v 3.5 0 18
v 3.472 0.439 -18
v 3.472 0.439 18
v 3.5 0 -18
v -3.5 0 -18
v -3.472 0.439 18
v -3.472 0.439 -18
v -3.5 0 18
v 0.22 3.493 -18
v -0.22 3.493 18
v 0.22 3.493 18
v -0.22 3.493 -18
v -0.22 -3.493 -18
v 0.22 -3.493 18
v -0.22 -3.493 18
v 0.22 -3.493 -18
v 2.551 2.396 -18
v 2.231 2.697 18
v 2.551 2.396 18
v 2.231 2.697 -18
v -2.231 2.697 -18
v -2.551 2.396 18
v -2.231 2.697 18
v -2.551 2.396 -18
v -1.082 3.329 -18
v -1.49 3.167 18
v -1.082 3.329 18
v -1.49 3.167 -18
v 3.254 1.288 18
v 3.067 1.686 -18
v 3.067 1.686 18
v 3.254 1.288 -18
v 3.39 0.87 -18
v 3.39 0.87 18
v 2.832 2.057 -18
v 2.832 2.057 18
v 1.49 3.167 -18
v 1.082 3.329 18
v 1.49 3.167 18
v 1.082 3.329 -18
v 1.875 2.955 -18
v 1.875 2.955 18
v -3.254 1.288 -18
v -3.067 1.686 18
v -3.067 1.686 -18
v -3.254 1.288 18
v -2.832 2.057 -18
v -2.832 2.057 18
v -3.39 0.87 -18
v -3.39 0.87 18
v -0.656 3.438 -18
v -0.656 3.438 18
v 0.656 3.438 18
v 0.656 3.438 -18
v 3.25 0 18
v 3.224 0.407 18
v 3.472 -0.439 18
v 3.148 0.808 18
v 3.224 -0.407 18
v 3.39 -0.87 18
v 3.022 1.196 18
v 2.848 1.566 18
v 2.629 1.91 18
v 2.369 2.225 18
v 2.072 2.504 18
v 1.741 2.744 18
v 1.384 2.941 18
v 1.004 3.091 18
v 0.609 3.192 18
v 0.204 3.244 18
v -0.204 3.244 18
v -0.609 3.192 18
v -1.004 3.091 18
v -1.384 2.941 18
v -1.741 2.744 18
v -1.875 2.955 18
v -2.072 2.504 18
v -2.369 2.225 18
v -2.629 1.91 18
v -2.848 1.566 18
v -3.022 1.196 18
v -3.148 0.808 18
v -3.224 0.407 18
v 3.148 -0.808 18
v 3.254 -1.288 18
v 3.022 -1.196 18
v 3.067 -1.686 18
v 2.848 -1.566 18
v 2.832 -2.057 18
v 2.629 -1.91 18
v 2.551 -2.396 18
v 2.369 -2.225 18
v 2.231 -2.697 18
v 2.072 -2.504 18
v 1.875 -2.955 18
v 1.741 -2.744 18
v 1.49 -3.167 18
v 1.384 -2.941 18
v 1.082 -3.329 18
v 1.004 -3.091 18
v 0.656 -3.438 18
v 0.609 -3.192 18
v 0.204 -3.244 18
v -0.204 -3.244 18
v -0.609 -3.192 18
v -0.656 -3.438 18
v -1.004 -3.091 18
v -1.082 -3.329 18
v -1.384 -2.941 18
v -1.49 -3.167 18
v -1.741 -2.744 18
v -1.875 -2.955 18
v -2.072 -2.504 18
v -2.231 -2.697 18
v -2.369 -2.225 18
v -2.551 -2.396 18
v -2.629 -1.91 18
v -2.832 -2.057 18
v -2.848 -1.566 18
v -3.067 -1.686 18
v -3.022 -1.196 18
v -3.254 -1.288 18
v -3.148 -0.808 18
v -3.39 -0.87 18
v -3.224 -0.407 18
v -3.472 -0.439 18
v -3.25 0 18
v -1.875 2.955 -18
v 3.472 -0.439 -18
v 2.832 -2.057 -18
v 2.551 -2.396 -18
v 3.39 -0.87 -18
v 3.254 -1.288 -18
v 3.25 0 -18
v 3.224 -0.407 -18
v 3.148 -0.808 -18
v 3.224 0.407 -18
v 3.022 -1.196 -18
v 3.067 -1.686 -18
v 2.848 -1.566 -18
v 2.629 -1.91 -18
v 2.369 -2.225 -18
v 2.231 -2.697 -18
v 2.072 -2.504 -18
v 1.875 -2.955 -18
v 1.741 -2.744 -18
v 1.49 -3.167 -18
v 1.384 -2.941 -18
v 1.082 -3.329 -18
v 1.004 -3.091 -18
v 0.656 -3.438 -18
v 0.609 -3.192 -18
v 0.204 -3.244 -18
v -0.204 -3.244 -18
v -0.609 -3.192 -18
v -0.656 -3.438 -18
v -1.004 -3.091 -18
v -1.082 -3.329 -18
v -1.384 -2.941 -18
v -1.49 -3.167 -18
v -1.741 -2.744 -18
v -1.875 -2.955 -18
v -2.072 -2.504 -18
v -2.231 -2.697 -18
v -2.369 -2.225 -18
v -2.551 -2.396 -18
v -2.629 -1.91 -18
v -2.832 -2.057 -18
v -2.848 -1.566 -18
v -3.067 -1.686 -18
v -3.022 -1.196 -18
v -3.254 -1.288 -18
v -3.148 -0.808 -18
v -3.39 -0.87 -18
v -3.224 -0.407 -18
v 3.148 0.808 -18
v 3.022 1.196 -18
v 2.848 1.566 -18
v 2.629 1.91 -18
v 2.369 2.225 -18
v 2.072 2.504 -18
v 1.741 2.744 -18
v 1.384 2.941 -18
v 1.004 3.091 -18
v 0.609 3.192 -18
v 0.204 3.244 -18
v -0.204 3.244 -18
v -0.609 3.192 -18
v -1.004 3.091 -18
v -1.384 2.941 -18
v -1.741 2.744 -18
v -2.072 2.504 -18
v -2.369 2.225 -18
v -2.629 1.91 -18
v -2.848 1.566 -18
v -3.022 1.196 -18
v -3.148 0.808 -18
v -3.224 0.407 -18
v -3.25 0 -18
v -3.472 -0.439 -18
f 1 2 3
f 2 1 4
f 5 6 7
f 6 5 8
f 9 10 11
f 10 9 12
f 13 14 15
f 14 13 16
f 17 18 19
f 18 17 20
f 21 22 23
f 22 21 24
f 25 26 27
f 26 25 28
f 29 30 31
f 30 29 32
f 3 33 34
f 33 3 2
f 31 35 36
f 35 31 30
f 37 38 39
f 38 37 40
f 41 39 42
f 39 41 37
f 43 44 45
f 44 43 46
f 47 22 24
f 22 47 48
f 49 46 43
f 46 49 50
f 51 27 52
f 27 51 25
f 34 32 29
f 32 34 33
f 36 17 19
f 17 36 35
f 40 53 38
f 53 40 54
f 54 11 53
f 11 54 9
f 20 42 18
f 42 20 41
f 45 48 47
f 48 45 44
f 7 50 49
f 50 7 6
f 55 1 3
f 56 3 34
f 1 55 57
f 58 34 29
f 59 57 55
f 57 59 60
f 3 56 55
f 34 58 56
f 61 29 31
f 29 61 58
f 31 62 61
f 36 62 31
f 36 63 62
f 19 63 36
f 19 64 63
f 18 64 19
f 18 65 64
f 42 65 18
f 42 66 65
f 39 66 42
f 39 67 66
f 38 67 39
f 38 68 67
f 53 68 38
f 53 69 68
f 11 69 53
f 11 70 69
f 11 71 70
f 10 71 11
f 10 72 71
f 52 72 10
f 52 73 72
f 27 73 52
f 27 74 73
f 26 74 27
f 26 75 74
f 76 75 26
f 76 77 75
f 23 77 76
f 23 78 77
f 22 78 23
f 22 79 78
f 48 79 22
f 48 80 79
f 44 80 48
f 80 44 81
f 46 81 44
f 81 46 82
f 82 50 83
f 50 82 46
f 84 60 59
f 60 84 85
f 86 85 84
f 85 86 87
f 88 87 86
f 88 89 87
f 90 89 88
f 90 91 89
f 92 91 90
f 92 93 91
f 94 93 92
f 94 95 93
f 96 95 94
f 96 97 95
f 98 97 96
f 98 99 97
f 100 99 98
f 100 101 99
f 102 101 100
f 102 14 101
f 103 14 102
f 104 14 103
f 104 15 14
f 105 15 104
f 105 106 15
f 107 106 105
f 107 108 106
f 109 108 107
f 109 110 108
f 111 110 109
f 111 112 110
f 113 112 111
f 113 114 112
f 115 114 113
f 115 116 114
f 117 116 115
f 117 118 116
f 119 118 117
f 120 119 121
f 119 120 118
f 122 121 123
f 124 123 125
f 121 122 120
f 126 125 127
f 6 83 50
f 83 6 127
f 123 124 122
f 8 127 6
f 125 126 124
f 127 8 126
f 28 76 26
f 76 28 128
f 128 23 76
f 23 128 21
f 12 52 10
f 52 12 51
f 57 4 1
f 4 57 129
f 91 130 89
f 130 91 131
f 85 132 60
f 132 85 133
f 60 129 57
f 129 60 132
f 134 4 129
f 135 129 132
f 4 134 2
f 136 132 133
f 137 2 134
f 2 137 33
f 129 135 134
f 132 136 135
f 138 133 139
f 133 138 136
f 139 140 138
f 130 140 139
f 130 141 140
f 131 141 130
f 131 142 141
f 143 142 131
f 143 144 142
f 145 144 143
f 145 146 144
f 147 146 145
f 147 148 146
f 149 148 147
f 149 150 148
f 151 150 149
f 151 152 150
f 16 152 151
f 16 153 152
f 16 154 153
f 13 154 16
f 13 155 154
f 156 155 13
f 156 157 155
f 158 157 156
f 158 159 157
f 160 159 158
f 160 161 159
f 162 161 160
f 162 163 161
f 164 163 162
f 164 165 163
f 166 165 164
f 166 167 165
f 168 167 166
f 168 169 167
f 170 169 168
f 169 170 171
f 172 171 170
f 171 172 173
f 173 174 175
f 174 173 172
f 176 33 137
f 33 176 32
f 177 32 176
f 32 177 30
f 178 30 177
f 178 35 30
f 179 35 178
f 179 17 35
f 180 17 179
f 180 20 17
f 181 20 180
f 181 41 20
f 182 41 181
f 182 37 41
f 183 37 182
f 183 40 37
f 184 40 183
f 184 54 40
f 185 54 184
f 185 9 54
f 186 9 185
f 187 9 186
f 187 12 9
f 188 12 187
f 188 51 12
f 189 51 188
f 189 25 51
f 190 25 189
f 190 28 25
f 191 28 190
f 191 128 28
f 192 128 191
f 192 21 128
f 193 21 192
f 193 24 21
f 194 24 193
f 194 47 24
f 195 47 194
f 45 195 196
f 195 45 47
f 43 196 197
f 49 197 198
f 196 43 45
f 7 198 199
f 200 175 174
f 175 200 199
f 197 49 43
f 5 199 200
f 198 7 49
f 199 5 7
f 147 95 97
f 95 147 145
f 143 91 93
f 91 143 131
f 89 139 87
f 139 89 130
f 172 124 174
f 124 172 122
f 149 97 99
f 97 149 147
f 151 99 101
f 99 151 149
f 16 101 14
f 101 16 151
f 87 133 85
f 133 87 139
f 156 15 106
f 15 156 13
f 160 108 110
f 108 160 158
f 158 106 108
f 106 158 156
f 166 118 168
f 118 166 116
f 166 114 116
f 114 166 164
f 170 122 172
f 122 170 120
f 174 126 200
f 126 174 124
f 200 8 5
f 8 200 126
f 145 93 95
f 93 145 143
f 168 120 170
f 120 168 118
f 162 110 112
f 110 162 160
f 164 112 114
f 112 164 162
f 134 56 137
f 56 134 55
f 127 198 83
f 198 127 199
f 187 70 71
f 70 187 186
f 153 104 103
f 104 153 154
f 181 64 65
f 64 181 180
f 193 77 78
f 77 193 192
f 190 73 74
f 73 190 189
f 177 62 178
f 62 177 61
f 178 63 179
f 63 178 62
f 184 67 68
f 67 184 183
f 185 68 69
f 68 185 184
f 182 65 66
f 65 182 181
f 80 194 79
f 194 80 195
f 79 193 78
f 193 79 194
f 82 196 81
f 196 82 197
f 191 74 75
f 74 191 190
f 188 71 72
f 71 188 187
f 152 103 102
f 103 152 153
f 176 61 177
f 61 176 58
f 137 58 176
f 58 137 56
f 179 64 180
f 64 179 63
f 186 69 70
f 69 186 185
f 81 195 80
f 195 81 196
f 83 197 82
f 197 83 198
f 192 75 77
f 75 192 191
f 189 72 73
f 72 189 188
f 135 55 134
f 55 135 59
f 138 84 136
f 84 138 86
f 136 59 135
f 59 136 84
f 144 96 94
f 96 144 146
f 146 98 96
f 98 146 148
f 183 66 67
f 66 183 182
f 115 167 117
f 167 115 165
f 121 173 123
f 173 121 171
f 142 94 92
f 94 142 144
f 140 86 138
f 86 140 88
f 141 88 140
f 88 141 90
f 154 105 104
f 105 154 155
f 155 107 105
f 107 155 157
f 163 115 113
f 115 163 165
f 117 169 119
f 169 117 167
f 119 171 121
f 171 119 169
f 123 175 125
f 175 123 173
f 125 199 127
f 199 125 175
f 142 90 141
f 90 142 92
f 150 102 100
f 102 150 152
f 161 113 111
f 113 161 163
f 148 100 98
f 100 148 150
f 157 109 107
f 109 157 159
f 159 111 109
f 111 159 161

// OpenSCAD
$fn = 50;


difference() {
	union() {
		translate(v = [0, 0, -18.0000000000]) {
			cylinder(h = 36, r = 3.5000000000);
		}
	}
	union() {
		translate(v = [0, 0, -100.0000000000]) {
			cylinder(h = 200, r = 3.2500000000);
		}
	}
}
